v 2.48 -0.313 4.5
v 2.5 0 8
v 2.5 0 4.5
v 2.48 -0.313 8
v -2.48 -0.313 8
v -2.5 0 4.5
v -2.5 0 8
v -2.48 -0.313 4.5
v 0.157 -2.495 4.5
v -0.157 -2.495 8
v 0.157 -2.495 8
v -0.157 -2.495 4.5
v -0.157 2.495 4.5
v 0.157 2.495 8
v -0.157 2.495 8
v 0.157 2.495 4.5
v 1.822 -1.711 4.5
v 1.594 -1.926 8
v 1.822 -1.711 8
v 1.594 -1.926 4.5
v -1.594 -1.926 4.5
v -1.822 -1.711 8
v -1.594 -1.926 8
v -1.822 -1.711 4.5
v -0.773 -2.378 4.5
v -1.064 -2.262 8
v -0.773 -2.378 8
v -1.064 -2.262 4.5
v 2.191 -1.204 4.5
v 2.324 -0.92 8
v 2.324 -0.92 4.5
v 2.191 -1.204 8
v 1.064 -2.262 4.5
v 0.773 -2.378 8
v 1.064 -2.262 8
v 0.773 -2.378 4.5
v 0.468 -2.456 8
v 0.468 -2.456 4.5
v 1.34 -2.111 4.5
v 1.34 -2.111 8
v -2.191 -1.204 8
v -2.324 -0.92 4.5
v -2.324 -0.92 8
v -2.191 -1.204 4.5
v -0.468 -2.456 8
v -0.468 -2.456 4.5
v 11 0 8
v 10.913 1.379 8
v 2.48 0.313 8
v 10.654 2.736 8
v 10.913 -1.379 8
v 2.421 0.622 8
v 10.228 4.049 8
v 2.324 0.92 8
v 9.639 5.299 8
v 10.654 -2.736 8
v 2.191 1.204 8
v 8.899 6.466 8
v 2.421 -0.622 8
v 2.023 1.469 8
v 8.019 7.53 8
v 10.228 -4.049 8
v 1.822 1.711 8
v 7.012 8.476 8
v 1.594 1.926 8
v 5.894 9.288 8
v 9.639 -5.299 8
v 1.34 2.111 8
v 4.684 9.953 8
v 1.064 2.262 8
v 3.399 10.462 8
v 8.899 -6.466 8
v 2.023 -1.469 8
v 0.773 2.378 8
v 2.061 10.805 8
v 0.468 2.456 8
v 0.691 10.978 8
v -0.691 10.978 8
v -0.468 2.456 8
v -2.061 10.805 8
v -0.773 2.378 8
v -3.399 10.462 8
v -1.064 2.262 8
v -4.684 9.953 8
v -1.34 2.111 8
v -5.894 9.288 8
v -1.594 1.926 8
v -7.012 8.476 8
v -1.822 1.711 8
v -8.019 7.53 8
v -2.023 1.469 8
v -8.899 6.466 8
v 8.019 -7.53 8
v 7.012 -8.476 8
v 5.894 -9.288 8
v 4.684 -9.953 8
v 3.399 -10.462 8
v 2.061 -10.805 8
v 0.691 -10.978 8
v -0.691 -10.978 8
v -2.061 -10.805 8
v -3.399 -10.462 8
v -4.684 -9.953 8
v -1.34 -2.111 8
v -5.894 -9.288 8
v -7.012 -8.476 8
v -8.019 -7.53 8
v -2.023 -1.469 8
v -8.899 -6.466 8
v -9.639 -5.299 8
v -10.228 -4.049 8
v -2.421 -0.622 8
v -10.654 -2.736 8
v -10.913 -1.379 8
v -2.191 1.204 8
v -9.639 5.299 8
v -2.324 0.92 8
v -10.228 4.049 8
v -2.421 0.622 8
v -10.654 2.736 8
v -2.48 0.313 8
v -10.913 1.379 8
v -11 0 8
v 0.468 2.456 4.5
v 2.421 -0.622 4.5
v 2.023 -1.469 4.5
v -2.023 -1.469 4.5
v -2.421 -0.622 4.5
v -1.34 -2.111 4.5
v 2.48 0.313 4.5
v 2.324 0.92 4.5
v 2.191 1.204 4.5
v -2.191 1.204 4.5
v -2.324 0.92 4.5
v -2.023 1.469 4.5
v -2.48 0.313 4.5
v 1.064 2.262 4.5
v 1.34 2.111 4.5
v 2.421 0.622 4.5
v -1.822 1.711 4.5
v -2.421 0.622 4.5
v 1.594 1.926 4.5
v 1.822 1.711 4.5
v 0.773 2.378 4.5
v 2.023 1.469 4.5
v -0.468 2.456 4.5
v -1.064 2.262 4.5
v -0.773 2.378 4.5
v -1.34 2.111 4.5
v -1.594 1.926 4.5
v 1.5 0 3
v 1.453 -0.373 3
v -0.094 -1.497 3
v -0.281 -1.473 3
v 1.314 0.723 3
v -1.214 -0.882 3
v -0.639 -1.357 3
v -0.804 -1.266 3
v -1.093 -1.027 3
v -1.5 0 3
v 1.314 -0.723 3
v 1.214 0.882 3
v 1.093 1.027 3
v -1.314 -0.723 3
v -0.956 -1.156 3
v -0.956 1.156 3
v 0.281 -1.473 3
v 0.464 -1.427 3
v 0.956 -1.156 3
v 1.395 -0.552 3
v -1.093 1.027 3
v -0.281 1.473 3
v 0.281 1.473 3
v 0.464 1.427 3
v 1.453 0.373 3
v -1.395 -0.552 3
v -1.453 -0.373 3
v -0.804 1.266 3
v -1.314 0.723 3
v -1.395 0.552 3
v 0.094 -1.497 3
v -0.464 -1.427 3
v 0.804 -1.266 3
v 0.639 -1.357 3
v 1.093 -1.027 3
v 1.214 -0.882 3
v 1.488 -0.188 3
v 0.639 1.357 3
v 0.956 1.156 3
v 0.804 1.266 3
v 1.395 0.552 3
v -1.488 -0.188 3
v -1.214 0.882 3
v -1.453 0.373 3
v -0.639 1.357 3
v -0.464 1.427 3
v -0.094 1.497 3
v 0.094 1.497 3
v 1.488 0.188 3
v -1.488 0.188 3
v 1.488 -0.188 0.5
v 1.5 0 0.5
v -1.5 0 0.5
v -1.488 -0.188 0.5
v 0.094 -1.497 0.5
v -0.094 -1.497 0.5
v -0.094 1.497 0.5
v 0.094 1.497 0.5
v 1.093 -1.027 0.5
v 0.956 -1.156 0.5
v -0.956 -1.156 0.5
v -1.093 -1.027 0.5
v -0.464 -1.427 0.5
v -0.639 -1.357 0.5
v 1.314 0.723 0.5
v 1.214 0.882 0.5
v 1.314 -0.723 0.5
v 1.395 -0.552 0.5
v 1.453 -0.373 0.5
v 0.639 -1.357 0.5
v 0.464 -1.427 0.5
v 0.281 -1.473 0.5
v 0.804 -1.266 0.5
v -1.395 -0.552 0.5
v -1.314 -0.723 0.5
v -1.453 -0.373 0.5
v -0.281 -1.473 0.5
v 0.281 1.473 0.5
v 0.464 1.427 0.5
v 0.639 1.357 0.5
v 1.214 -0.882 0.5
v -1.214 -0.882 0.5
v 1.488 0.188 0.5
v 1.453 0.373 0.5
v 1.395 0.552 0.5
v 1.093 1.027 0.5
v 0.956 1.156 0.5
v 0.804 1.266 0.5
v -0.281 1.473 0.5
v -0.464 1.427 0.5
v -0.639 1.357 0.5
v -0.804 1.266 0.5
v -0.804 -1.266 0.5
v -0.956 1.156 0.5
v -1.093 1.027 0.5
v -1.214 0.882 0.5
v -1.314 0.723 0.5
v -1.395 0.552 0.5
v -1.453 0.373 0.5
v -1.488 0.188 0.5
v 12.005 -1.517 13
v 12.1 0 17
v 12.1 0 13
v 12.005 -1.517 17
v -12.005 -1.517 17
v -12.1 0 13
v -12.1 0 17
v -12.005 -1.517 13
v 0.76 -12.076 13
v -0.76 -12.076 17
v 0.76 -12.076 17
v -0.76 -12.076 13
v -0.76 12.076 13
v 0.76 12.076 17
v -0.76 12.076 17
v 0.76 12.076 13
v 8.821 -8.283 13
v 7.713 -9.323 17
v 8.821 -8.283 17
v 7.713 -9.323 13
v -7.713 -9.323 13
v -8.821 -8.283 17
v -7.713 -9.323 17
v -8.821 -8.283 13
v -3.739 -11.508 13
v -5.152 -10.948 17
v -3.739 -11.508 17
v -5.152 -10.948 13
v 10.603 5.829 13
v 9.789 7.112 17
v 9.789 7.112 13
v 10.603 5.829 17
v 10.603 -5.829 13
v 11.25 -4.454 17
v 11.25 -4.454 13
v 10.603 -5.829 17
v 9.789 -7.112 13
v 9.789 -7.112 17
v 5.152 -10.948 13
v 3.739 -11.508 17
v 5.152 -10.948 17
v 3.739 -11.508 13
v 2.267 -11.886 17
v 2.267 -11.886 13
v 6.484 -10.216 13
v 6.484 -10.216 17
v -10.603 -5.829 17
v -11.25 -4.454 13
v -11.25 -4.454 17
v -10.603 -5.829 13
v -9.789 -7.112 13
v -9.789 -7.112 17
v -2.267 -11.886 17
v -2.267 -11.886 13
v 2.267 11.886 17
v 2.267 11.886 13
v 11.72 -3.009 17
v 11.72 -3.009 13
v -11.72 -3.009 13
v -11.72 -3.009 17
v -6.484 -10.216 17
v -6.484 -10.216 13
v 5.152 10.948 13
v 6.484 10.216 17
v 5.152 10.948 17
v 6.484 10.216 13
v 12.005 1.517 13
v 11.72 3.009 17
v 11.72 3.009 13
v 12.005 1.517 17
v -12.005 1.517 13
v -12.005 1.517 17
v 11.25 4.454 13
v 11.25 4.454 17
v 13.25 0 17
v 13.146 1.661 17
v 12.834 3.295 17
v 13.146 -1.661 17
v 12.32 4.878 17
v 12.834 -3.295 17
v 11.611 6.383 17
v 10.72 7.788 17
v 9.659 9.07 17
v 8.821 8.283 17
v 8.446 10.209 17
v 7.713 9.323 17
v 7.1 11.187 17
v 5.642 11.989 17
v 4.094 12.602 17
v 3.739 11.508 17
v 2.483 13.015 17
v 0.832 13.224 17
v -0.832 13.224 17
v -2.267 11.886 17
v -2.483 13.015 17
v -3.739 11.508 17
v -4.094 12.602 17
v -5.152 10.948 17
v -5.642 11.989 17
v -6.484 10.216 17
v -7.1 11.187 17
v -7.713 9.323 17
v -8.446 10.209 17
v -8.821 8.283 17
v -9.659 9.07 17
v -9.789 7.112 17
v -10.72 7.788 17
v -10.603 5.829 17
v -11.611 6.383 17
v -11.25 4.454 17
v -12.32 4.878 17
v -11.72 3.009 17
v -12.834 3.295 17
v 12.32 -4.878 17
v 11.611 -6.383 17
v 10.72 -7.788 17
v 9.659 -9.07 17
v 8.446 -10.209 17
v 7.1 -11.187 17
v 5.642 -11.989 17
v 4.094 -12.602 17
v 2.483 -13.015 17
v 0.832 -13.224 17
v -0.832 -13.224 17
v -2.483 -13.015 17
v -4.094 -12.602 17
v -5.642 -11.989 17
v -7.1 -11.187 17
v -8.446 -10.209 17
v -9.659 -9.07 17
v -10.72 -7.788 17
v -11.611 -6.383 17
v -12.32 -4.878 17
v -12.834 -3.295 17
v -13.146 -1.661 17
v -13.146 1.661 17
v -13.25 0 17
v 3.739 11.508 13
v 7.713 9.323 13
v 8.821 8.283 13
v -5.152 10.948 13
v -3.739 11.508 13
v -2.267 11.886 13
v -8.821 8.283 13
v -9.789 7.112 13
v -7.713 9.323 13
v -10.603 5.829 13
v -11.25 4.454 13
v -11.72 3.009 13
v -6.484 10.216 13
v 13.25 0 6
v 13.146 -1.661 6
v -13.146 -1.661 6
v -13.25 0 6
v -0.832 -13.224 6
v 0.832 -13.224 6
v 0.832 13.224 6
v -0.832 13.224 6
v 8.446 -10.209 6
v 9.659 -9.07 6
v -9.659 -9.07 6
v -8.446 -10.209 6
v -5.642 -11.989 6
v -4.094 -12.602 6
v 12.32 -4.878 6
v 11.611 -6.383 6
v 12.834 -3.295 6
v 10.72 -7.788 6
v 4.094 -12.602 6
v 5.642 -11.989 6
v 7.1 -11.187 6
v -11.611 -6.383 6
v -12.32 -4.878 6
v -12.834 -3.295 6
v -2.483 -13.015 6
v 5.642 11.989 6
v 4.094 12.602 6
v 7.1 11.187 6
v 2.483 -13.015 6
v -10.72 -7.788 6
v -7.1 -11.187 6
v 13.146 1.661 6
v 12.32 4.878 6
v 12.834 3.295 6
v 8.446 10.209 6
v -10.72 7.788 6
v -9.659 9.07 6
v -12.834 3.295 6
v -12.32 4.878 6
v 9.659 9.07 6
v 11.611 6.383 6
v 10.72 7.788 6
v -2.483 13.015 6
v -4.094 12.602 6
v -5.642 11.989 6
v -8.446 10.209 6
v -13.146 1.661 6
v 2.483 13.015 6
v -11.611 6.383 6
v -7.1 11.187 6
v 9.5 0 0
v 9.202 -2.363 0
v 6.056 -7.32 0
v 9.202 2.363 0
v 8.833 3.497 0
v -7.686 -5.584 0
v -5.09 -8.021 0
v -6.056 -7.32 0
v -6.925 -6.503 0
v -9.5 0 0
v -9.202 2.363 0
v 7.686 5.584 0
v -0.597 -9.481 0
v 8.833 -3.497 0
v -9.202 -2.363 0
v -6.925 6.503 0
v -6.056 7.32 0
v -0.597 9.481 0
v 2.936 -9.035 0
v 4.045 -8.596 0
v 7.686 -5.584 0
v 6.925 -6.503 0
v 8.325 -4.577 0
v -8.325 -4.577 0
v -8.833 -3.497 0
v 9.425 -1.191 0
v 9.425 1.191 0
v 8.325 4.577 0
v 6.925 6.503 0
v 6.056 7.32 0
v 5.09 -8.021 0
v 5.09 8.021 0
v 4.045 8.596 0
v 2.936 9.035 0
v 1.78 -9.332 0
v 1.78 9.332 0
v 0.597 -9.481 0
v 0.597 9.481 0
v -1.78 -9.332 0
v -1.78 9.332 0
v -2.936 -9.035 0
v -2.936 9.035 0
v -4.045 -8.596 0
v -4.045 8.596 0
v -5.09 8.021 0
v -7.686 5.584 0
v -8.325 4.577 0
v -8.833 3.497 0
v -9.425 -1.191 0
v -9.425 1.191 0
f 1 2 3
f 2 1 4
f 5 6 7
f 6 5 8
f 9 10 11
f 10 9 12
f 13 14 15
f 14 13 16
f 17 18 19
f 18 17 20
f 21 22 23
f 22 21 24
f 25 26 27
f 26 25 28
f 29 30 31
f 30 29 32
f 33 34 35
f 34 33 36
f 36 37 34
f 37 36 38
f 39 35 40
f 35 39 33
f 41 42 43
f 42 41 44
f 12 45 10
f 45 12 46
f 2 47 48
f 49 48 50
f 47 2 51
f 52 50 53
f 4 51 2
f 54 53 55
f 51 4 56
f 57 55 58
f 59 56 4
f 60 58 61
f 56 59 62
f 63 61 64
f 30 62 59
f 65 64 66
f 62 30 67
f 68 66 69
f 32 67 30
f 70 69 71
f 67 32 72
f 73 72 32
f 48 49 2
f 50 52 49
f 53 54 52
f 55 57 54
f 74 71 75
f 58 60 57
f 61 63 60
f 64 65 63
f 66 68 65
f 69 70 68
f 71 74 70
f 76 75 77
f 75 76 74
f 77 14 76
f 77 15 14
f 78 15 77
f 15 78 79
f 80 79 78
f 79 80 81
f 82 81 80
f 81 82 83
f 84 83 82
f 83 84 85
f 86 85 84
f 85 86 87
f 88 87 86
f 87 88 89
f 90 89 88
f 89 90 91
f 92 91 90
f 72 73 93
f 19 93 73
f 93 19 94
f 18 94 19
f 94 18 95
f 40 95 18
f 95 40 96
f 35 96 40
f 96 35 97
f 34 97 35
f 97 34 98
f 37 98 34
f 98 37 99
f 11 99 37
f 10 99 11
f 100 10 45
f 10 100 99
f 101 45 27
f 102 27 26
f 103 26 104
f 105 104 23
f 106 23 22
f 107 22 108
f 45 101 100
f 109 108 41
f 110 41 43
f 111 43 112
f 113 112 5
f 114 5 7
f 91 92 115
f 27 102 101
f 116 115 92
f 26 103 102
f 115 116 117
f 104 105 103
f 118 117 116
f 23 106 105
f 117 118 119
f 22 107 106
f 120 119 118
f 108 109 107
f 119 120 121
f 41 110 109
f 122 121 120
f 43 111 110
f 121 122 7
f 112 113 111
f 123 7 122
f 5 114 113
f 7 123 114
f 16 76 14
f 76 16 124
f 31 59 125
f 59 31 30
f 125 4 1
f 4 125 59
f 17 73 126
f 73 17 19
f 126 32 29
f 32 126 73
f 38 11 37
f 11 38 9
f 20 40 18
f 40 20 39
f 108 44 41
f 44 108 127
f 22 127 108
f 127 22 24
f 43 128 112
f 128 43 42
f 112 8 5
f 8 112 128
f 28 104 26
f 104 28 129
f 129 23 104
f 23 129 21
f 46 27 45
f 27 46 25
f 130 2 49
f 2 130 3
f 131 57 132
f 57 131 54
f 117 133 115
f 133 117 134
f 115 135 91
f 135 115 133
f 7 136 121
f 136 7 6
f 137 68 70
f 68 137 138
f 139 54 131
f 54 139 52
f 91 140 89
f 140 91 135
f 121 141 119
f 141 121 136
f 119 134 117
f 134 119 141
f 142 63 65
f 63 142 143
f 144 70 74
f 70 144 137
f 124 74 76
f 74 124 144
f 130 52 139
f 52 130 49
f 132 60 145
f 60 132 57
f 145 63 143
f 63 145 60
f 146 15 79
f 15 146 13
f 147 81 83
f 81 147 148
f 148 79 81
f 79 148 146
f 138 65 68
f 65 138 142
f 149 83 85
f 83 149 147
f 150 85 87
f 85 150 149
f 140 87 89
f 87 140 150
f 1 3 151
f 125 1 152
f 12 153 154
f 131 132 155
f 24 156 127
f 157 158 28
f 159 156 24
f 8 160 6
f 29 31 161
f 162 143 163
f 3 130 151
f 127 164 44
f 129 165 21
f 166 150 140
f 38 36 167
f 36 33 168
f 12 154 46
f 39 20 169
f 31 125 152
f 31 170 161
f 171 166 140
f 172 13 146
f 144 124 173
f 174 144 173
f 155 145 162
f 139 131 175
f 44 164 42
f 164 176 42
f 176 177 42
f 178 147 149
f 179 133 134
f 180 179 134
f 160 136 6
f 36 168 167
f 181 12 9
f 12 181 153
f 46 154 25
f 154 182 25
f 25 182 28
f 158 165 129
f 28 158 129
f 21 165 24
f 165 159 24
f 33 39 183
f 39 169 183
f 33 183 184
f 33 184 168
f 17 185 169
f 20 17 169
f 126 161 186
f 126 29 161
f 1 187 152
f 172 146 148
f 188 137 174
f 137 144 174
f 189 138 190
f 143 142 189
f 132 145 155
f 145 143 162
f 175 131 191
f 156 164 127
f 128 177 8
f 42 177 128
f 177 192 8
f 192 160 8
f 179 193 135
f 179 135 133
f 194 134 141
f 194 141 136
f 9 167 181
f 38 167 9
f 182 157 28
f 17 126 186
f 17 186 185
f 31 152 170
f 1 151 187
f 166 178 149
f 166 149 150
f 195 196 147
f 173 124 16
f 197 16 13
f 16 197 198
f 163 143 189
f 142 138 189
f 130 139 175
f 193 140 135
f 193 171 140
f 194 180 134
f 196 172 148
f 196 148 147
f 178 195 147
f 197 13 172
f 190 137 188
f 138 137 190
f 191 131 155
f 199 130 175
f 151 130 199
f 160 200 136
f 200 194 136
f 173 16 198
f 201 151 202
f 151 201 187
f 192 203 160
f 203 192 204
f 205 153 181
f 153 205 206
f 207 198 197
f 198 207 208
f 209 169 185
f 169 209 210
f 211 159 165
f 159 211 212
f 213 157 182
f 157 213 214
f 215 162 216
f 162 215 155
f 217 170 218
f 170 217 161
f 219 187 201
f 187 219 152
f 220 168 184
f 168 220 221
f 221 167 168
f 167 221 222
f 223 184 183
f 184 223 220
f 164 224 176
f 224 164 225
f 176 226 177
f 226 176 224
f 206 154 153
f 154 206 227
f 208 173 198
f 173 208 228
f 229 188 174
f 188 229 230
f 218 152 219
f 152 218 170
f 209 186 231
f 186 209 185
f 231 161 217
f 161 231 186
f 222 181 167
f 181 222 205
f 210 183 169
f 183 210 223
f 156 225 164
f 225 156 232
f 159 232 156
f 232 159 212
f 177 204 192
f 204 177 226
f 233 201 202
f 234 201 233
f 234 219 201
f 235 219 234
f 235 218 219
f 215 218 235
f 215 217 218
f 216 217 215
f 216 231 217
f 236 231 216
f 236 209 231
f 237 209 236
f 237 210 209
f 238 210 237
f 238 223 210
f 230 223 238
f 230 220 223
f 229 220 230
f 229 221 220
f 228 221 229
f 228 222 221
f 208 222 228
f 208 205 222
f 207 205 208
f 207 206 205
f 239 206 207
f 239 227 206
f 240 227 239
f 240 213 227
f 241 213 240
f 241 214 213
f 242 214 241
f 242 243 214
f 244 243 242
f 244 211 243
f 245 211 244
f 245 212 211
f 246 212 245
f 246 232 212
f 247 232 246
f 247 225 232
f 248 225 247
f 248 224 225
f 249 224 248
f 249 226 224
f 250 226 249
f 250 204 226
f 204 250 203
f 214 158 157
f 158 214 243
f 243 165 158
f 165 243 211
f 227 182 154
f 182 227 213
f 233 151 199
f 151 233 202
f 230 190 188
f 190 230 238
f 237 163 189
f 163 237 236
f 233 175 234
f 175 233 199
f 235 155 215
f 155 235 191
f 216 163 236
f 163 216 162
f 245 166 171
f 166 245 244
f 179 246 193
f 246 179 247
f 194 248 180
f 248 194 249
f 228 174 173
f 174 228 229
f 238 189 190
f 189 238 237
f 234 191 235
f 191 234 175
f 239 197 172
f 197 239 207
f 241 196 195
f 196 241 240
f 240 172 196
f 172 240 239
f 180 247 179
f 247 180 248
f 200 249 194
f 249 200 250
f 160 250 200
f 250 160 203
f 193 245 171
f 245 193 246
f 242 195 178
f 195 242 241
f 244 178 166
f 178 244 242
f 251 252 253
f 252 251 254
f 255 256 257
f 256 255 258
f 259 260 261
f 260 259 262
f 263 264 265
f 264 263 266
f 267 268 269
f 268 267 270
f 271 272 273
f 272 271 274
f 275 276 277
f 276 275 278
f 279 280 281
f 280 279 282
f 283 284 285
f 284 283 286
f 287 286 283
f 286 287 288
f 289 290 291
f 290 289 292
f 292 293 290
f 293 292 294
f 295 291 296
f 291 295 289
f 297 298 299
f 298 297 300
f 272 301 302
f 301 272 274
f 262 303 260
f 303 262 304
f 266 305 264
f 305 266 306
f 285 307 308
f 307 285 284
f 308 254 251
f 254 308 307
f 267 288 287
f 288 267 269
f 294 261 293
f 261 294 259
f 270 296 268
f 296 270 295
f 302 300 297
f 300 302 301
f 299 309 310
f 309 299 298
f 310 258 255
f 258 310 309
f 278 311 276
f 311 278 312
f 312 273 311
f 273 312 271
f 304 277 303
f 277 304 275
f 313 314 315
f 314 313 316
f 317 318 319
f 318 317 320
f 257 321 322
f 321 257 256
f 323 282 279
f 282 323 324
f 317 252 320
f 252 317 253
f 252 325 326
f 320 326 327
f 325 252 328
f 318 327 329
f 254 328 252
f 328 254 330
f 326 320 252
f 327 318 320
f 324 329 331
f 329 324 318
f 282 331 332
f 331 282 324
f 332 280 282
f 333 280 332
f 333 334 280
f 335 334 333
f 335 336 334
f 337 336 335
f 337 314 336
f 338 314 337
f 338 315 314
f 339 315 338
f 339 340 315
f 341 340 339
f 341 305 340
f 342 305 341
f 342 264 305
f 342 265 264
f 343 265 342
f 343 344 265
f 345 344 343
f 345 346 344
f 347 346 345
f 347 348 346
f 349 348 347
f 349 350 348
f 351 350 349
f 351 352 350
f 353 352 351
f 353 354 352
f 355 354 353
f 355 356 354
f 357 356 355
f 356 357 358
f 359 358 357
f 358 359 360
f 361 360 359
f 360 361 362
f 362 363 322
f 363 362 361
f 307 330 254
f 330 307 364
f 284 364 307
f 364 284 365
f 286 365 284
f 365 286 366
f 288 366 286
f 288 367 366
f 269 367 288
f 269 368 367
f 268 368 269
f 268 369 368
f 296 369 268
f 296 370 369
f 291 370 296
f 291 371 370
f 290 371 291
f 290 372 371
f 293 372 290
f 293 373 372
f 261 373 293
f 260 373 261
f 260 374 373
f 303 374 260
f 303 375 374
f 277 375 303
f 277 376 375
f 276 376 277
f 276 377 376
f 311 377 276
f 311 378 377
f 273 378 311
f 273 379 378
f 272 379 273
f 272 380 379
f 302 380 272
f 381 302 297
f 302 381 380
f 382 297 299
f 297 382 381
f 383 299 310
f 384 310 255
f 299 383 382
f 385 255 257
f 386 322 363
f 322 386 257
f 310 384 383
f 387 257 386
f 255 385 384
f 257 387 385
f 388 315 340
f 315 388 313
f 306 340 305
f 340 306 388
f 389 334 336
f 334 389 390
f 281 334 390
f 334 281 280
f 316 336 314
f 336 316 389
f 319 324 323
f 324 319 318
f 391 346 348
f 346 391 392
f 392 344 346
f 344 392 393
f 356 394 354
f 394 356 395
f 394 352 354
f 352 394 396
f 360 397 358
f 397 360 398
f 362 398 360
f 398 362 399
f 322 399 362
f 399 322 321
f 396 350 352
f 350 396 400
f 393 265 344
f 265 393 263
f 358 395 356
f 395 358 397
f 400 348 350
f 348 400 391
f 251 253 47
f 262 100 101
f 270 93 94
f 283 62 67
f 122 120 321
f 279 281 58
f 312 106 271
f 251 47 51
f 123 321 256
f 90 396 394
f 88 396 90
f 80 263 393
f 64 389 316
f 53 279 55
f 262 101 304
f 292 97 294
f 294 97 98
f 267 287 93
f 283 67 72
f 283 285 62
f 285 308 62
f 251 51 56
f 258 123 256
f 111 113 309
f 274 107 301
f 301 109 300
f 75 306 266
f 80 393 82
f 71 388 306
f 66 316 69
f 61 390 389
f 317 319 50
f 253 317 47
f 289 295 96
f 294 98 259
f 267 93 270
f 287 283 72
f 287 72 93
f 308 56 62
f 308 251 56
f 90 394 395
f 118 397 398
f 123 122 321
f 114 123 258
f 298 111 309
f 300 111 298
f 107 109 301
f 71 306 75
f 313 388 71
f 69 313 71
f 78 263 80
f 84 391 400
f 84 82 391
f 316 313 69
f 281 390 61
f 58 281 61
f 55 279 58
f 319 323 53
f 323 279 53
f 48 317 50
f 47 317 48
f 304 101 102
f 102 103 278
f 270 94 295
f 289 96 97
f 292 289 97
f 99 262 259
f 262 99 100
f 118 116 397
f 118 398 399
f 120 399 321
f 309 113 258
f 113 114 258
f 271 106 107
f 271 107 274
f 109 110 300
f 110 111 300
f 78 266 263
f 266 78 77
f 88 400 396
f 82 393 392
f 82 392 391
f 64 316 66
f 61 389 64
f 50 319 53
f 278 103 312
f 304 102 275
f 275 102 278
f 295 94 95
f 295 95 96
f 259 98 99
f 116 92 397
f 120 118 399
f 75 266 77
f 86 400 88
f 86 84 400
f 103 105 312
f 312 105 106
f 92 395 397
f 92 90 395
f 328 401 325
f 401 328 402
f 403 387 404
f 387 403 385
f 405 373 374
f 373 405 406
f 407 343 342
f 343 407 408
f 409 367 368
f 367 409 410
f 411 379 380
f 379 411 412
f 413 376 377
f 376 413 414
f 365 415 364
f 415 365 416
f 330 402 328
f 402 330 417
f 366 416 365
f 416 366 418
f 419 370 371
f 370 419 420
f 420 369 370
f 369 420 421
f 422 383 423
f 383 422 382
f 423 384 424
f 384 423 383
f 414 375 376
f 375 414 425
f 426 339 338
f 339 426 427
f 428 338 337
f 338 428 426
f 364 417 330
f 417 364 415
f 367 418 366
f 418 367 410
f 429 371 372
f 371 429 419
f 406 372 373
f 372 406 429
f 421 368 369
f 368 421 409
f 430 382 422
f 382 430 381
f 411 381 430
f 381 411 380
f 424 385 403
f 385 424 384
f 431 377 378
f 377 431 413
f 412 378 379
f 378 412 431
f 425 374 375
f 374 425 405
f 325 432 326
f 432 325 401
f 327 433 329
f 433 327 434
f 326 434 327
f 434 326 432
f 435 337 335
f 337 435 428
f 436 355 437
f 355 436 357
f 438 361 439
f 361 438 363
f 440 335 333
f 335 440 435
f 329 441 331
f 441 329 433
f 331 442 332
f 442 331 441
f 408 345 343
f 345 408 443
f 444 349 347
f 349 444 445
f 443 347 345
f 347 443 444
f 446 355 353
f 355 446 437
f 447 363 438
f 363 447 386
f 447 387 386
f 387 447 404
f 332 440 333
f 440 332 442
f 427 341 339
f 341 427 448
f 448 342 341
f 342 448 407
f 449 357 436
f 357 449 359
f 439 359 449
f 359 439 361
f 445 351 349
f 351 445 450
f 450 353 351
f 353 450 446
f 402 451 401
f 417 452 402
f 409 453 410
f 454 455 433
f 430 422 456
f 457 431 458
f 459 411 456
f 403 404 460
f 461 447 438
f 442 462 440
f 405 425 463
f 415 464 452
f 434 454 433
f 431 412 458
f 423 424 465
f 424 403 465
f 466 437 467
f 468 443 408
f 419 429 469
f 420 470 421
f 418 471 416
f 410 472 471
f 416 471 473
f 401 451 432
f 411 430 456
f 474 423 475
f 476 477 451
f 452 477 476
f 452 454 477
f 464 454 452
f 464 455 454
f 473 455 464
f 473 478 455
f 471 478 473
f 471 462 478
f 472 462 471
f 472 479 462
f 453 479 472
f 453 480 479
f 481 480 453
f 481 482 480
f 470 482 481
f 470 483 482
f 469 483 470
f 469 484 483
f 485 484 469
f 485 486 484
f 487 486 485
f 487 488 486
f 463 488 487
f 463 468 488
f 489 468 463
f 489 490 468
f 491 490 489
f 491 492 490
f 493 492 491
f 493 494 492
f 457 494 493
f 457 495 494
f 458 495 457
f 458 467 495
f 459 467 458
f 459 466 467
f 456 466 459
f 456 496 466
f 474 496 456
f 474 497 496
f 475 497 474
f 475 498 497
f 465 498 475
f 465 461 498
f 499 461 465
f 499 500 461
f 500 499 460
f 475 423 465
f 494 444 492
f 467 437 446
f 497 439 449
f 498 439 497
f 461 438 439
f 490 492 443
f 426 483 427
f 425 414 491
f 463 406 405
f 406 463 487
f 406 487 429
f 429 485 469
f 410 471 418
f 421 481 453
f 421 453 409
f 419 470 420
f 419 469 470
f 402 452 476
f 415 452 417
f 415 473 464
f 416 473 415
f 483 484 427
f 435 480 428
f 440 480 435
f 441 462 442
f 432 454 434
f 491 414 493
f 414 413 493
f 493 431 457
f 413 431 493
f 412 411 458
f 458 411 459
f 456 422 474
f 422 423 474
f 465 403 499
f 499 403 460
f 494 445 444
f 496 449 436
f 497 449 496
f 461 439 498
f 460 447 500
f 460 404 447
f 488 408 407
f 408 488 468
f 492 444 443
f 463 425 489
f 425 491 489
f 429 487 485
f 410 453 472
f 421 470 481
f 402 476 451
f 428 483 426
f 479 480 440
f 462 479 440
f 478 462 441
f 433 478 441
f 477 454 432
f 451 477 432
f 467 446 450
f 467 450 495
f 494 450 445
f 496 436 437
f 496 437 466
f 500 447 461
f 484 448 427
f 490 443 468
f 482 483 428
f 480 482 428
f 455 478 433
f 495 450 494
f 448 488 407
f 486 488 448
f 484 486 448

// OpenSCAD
$fn = 50;

rotate([180,0,0]) translate([0,0,-17]) difference() {
    // Outer shell
    union() {
        cylinder(h=11, d=26.5);
        translate([0,0,11]) cylinder(h=6, d1=26.5, d2=19);
    }
    // Inside
    union() {
        // Shaft
        translate([0,0,9]) cylinder(h=3.5, d=5);
        translate([0,0,12.5]) cylinder(h=1.5, d1=5, d2=3);
        translate([0,0,13.5]) cylinder(h=3, d=3);
        
        // Motor base
        cylinder(h=4, d=24.2);
        translate([0,0,4]) cylinder(h=5, d1=24.2, d2=22);
    }
}


/*
        translate([0,0,9]) cylinder(h=3.5, d=5);
        translate([0,0,12.5]) cylinder(h=1.5, d1=5, d2=3);
        translate([0,0,13.5]) cylinder(h=3, d=3);
*/

/*
        translate([0,0,9]) cylinder(h=5, d=5);
        translate([0,0,14]) cylinder(h=1.5, d1=5, d2=3);
        translate([0,0,15.5]) cylinder(h=3, d=3);
*/
